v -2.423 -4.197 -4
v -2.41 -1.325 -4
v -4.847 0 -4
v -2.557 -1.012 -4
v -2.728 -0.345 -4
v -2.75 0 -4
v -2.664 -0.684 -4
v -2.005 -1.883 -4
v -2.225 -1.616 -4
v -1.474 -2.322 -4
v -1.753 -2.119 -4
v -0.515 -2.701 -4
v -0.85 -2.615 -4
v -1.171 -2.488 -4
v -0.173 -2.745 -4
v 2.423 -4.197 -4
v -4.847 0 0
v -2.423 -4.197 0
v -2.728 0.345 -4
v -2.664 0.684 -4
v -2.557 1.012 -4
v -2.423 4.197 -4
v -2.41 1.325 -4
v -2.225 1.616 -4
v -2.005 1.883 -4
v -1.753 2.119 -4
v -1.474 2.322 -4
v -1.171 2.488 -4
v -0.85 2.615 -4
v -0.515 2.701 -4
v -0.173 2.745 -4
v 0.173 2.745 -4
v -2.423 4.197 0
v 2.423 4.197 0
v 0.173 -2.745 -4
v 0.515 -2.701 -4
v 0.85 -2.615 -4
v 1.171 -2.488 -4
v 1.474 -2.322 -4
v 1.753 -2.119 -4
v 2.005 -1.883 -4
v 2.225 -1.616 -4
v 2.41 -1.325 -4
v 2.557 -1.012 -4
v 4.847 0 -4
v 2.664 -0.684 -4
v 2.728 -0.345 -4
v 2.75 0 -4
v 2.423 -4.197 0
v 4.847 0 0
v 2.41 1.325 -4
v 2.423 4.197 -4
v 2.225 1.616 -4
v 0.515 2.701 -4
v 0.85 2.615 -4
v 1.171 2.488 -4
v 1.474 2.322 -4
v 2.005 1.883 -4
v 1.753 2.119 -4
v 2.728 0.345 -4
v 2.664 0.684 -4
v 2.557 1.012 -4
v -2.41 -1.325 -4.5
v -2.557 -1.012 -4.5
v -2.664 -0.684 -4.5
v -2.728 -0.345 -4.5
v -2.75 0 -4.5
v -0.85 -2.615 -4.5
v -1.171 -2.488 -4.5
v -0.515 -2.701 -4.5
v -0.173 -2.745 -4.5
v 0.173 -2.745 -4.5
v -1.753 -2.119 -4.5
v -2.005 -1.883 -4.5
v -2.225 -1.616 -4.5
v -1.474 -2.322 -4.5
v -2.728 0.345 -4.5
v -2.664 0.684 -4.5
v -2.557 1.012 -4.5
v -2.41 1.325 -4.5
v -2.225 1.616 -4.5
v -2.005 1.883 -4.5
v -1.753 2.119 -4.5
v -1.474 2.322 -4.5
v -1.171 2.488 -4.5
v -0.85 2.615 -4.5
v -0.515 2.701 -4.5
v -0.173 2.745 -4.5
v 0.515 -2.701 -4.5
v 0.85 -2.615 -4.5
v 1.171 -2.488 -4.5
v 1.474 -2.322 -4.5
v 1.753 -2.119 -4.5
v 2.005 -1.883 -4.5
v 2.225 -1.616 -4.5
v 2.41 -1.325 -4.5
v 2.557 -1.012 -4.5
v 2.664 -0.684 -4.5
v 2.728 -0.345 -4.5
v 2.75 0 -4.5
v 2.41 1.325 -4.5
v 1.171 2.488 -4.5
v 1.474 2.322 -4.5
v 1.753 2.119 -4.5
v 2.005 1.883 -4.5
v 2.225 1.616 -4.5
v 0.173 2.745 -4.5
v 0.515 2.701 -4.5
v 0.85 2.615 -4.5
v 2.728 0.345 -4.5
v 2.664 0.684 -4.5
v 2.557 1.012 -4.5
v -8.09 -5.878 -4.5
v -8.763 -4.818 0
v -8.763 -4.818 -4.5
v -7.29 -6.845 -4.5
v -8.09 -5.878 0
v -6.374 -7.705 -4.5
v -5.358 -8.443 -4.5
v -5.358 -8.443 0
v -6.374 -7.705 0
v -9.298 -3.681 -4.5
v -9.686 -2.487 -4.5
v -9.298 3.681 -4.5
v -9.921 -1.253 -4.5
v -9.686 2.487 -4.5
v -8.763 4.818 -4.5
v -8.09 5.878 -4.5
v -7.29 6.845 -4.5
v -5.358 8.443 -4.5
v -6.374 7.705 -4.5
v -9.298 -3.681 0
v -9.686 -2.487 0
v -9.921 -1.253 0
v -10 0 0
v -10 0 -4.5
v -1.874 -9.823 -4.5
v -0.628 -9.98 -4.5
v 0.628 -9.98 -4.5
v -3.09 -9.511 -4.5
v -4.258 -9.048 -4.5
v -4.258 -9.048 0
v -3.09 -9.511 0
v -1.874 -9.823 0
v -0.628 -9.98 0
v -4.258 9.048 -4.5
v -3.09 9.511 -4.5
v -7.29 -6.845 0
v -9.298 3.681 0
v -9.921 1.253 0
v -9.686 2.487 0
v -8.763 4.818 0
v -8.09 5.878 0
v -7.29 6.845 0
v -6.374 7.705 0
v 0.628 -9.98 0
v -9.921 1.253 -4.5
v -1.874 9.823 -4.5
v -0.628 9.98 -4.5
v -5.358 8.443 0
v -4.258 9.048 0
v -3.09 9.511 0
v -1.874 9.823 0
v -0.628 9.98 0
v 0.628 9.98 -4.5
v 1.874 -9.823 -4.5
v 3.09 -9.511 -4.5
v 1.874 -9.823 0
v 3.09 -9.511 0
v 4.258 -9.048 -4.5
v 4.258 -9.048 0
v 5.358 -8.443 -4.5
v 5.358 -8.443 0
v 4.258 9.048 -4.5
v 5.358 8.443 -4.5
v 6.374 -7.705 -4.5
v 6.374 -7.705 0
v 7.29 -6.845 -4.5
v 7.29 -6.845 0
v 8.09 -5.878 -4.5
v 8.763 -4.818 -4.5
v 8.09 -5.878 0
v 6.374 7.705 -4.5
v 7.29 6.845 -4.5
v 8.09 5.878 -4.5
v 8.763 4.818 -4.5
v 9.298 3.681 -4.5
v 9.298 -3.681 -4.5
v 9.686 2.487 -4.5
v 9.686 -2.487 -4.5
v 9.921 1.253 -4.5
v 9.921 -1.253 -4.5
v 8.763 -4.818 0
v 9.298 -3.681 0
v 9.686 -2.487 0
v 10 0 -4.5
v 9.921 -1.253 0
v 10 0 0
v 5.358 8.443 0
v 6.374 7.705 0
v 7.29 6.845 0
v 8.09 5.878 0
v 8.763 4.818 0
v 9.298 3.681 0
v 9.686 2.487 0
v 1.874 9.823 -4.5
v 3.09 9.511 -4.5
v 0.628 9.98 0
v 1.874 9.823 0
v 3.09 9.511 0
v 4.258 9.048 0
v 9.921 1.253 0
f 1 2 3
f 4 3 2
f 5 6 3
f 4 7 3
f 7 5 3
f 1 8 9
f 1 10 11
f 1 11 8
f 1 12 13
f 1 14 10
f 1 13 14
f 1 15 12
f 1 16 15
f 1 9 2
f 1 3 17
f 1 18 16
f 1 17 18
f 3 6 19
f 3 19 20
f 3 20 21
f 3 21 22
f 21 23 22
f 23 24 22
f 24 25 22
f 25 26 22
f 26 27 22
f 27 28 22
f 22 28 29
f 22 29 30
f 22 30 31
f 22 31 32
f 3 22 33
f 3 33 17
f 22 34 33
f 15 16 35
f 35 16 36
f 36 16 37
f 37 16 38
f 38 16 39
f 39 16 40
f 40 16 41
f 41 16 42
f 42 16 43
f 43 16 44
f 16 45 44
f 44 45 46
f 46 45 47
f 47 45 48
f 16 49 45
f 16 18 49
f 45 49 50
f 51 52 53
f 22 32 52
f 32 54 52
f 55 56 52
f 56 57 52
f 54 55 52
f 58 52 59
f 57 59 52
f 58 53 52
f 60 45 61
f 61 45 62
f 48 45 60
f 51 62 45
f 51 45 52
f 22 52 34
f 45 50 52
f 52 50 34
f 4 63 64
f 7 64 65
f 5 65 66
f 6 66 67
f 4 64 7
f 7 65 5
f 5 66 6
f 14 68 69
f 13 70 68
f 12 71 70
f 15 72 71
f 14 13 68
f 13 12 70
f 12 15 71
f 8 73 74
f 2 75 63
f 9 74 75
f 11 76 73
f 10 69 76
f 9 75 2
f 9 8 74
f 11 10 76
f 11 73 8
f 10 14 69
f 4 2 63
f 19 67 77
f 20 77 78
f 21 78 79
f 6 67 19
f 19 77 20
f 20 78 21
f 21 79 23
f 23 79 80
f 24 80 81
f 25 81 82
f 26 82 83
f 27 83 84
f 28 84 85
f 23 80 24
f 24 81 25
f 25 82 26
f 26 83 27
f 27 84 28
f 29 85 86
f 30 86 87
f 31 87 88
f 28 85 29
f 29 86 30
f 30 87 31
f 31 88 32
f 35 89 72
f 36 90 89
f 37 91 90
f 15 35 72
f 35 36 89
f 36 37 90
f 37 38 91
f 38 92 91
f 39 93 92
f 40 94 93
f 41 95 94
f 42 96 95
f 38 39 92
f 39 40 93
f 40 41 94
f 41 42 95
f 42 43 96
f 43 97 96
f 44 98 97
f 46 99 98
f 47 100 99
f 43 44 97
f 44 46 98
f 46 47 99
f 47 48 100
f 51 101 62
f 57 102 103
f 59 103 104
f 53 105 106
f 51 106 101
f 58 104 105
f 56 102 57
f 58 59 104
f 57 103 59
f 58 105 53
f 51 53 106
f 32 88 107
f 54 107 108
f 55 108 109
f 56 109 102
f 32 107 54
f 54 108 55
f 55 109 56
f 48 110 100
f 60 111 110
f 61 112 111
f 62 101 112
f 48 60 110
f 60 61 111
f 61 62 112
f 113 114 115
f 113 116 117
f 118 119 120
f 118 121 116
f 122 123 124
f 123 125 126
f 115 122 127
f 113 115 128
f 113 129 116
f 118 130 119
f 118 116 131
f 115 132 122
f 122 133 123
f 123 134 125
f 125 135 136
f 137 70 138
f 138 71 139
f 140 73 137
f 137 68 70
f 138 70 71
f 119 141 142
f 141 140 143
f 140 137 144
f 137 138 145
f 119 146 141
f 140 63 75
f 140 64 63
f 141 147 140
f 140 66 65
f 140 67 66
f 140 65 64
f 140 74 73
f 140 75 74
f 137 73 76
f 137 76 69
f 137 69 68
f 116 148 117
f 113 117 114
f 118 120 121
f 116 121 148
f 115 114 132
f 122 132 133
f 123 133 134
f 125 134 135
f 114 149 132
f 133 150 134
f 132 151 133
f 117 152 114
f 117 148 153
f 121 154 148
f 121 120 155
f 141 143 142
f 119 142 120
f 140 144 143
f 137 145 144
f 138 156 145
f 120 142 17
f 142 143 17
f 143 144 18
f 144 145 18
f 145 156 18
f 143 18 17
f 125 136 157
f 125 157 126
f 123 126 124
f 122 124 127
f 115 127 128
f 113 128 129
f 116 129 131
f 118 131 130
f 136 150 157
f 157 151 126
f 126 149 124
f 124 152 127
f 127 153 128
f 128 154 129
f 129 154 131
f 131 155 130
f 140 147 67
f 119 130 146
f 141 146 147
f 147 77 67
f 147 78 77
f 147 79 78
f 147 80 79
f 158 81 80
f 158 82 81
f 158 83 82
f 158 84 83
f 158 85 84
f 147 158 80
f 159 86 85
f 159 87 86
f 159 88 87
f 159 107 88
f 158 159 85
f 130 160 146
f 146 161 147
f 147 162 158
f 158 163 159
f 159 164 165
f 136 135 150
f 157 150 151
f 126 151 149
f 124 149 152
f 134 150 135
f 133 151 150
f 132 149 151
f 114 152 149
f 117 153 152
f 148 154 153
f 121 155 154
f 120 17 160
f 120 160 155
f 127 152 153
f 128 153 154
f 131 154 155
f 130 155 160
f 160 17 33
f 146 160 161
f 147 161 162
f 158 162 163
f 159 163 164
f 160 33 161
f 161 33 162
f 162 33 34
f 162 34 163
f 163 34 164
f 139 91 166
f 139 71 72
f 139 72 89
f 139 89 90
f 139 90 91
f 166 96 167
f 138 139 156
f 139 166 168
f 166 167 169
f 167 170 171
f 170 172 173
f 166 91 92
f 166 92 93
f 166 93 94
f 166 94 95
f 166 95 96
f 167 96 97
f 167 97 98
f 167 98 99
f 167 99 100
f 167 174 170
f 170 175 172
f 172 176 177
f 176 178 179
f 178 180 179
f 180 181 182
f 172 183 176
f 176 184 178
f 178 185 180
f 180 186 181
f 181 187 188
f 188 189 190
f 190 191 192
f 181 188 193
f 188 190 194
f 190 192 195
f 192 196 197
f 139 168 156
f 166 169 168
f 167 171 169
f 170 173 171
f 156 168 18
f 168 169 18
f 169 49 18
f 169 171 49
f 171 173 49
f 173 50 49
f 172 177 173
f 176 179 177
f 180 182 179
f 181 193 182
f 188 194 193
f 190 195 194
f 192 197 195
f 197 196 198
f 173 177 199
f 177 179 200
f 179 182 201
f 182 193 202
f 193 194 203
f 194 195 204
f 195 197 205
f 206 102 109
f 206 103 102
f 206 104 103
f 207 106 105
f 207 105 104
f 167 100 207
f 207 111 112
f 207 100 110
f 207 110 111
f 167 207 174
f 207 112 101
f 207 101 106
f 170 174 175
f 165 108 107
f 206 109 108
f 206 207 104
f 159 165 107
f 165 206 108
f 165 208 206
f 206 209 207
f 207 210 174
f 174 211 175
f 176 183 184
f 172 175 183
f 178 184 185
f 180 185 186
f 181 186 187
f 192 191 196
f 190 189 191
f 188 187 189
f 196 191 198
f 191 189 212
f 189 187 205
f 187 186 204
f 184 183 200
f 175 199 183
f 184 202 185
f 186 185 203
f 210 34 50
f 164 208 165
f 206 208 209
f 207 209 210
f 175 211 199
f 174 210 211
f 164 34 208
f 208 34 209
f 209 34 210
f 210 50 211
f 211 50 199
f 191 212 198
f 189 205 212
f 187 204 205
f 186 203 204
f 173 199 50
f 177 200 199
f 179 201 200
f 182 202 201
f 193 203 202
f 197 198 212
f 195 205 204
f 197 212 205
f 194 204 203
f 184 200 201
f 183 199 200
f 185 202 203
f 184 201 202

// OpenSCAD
$fn = 50;

difference() {
	union() {
		translate(v = [0, 0, -4.5]) {
			cylinder(h = 4.5, r = 10.0);
		}
	}
	union() {
		translate(v = [0, 0, 0]) {
			rotate(a = [0, 0, 0]) {
				difference() {
					union() {
						translate(v = [0, 0, -4]) {
							linear_extrude(height = 4) {
								polygon(points = [[4.8468, 0.0], [2.4234000000000004, 4.197451927062417], [-2.423399999999999, 4.197451927062417], [-4.8468, 5.935618106107392e-16], [-2.423400000000002, -4.197451927062416], [2.423399999999997, -4.197451927062419]]);
							}
						}
					}
					union();
				}
			}
		}
		#translate(v = [0, 0, -100.0]) {
			cylinder(h = 200, r = 2.75);
		}
	}
}
